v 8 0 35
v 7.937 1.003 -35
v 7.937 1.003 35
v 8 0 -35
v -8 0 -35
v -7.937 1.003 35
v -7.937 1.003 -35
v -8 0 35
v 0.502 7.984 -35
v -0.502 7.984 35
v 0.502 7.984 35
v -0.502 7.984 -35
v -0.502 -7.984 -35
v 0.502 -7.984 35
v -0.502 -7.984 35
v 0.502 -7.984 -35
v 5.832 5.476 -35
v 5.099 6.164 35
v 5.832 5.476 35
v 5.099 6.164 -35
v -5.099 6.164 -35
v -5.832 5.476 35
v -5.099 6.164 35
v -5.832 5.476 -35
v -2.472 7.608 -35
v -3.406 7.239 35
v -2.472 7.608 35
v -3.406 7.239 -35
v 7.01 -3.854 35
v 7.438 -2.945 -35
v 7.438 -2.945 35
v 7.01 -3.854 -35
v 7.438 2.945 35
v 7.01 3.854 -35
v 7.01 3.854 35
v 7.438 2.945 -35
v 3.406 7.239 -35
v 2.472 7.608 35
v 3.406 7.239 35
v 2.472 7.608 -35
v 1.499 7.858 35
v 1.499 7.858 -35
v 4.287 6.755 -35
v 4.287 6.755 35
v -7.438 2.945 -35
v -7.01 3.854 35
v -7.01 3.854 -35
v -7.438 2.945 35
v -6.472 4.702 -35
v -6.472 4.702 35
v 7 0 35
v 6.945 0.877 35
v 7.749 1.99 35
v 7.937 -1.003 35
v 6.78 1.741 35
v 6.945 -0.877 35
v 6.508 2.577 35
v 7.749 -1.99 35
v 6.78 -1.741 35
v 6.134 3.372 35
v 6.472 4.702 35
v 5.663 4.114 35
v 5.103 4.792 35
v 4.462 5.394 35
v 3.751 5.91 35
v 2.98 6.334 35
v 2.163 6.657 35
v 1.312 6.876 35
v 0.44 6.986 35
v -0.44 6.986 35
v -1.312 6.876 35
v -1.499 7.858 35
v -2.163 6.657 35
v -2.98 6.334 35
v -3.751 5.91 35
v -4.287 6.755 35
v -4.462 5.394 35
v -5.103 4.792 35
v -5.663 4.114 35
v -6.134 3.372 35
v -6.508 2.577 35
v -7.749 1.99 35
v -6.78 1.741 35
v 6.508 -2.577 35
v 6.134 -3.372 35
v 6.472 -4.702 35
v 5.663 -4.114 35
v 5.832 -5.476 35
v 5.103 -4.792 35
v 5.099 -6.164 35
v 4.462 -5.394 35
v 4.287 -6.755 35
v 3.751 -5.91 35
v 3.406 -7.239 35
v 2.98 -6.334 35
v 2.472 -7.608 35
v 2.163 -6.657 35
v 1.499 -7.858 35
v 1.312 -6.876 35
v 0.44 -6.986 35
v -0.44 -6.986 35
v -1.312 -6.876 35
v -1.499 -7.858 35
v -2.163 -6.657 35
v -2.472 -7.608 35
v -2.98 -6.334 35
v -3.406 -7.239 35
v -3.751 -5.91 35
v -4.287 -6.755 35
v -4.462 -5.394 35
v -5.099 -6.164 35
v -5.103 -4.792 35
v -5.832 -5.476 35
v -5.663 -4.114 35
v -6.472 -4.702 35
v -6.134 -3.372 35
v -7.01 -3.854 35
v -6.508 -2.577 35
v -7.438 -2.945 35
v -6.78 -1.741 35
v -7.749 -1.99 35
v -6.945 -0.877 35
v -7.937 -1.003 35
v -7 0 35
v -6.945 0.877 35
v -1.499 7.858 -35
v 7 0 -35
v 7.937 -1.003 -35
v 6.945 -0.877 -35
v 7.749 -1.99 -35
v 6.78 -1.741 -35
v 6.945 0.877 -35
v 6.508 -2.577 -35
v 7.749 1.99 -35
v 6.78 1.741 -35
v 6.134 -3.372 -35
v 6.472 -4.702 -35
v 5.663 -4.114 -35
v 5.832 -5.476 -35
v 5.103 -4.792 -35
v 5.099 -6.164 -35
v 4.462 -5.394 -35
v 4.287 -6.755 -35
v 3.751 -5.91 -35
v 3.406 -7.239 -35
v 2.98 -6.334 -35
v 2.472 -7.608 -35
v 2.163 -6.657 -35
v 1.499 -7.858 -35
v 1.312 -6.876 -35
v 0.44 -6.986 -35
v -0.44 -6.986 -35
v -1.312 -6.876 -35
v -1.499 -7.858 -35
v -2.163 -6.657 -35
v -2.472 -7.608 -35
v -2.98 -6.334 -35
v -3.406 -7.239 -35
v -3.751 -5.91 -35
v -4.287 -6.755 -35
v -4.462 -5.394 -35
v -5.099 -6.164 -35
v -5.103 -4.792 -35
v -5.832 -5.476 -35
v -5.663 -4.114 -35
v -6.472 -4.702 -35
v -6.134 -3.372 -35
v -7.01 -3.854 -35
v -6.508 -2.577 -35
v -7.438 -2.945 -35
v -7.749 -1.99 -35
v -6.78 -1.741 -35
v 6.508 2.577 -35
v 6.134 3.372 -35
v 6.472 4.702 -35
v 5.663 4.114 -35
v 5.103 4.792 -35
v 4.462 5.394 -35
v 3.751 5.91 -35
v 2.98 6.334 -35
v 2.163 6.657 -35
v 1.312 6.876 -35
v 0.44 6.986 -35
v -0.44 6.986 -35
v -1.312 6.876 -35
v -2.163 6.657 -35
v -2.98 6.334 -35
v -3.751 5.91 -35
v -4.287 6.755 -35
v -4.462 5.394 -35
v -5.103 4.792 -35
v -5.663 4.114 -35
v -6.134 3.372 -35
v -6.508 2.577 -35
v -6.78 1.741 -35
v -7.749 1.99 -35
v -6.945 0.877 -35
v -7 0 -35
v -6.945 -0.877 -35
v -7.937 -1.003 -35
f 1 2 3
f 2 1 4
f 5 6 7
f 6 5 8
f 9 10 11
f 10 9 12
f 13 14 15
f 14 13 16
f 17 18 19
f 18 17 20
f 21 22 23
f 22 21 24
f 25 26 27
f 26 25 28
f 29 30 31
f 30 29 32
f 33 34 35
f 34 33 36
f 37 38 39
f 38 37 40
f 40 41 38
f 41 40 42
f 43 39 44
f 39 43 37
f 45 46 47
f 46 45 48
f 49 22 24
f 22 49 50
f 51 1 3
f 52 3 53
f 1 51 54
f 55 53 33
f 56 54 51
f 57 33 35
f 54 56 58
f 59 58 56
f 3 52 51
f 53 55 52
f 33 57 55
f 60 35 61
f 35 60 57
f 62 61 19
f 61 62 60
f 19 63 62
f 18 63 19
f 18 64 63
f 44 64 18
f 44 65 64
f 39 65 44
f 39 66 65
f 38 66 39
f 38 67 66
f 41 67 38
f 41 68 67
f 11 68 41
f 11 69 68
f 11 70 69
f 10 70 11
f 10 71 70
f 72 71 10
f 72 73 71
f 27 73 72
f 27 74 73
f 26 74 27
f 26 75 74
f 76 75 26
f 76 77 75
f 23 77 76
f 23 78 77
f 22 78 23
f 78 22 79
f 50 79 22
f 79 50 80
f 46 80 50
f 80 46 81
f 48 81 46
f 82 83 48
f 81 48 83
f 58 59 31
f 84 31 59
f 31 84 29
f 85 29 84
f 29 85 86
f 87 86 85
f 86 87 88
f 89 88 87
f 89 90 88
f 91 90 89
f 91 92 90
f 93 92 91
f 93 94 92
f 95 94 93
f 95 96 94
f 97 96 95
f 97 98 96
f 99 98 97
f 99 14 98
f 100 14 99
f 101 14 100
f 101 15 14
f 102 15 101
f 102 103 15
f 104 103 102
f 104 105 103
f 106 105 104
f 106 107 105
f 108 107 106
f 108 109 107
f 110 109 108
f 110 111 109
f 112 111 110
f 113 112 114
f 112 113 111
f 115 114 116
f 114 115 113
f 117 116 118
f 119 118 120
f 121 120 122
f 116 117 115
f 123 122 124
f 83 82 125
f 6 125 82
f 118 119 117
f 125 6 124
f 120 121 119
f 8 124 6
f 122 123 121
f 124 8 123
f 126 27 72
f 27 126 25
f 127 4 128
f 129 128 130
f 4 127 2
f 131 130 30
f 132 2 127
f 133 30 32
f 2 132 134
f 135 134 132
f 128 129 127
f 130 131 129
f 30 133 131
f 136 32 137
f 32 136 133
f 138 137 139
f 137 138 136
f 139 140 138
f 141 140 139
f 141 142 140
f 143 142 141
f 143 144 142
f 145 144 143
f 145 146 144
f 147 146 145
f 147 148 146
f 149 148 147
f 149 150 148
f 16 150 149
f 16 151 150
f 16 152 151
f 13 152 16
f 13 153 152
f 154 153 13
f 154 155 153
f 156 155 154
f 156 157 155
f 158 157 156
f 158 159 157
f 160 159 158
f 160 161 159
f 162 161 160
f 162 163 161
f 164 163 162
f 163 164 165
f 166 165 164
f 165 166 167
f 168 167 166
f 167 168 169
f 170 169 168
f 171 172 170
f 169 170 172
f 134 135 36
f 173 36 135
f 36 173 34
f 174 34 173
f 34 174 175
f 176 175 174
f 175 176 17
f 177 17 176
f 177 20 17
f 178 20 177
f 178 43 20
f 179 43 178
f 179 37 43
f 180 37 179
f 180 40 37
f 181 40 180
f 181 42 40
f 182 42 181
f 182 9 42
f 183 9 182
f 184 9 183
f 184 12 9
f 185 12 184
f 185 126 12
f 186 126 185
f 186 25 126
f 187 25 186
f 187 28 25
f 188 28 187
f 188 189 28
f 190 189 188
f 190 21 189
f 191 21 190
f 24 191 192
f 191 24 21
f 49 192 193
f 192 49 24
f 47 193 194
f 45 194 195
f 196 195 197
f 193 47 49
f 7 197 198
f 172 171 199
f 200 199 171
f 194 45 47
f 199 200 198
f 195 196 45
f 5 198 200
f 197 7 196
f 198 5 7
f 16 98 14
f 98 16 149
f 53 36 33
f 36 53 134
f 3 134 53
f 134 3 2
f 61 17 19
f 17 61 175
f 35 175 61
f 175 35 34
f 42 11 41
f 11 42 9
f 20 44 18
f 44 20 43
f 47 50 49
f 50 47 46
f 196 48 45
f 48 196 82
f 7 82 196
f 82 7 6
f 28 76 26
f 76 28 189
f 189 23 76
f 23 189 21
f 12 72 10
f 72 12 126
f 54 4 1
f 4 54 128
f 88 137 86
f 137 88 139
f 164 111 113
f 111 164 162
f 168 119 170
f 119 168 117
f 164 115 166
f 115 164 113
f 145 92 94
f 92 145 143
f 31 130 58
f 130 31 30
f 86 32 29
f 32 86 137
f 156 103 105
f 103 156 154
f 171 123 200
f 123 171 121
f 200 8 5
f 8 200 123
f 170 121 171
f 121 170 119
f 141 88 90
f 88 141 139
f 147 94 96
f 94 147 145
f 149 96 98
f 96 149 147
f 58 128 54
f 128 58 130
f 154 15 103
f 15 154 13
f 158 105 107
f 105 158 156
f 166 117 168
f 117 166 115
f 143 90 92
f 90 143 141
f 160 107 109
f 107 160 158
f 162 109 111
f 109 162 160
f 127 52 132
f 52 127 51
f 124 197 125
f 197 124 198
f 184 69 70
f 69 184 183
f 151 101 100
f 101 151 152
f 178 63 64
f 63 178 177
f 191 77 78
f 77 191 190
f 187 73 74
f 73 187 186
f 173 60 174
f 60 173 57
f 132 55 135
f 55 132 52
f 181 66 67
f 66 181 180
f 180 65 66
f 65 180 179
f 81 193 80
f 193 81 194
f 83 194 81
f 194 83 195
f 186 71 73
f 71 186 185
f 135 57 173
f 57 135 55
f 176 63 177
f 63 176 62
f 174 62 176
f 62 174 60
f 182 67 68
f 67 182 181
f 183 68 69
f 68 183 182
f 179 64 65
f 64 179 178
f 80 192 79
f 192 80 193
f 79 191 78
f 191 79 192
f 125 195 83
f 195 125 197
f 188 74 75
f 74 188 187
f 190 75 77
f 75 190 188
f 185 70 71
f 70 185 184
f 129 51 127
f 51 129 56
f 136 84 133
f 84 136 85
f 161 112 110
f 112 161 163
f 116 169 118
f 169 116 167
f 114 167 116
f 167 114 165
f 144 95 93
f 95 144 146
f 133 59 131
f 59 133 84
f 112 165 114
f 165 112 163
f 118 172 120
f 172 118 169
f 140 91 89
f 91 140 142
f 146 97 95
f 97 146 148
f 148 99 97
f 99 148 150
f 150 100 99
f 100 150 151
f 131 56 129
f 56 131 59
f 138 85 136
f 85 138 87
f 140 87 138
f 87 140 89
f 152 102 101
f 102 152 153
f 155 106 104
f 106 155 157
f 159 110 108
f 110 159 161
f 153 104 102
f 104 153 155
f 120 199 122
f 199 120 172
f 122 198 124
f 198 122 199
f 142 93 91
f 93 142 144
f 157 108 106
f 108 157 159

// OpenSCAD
$fn = 50;


difference() {
	union() {
		translate(v = [0, 0, -35.0000000000]) {
			cylinder(h = 70, r = 8.0000000000);
		}
	}
	union() {
		translate(v = [0, 0, -100.0000000000]) {
			cylinder(h = 200, r = 7);
		}
	}
}
